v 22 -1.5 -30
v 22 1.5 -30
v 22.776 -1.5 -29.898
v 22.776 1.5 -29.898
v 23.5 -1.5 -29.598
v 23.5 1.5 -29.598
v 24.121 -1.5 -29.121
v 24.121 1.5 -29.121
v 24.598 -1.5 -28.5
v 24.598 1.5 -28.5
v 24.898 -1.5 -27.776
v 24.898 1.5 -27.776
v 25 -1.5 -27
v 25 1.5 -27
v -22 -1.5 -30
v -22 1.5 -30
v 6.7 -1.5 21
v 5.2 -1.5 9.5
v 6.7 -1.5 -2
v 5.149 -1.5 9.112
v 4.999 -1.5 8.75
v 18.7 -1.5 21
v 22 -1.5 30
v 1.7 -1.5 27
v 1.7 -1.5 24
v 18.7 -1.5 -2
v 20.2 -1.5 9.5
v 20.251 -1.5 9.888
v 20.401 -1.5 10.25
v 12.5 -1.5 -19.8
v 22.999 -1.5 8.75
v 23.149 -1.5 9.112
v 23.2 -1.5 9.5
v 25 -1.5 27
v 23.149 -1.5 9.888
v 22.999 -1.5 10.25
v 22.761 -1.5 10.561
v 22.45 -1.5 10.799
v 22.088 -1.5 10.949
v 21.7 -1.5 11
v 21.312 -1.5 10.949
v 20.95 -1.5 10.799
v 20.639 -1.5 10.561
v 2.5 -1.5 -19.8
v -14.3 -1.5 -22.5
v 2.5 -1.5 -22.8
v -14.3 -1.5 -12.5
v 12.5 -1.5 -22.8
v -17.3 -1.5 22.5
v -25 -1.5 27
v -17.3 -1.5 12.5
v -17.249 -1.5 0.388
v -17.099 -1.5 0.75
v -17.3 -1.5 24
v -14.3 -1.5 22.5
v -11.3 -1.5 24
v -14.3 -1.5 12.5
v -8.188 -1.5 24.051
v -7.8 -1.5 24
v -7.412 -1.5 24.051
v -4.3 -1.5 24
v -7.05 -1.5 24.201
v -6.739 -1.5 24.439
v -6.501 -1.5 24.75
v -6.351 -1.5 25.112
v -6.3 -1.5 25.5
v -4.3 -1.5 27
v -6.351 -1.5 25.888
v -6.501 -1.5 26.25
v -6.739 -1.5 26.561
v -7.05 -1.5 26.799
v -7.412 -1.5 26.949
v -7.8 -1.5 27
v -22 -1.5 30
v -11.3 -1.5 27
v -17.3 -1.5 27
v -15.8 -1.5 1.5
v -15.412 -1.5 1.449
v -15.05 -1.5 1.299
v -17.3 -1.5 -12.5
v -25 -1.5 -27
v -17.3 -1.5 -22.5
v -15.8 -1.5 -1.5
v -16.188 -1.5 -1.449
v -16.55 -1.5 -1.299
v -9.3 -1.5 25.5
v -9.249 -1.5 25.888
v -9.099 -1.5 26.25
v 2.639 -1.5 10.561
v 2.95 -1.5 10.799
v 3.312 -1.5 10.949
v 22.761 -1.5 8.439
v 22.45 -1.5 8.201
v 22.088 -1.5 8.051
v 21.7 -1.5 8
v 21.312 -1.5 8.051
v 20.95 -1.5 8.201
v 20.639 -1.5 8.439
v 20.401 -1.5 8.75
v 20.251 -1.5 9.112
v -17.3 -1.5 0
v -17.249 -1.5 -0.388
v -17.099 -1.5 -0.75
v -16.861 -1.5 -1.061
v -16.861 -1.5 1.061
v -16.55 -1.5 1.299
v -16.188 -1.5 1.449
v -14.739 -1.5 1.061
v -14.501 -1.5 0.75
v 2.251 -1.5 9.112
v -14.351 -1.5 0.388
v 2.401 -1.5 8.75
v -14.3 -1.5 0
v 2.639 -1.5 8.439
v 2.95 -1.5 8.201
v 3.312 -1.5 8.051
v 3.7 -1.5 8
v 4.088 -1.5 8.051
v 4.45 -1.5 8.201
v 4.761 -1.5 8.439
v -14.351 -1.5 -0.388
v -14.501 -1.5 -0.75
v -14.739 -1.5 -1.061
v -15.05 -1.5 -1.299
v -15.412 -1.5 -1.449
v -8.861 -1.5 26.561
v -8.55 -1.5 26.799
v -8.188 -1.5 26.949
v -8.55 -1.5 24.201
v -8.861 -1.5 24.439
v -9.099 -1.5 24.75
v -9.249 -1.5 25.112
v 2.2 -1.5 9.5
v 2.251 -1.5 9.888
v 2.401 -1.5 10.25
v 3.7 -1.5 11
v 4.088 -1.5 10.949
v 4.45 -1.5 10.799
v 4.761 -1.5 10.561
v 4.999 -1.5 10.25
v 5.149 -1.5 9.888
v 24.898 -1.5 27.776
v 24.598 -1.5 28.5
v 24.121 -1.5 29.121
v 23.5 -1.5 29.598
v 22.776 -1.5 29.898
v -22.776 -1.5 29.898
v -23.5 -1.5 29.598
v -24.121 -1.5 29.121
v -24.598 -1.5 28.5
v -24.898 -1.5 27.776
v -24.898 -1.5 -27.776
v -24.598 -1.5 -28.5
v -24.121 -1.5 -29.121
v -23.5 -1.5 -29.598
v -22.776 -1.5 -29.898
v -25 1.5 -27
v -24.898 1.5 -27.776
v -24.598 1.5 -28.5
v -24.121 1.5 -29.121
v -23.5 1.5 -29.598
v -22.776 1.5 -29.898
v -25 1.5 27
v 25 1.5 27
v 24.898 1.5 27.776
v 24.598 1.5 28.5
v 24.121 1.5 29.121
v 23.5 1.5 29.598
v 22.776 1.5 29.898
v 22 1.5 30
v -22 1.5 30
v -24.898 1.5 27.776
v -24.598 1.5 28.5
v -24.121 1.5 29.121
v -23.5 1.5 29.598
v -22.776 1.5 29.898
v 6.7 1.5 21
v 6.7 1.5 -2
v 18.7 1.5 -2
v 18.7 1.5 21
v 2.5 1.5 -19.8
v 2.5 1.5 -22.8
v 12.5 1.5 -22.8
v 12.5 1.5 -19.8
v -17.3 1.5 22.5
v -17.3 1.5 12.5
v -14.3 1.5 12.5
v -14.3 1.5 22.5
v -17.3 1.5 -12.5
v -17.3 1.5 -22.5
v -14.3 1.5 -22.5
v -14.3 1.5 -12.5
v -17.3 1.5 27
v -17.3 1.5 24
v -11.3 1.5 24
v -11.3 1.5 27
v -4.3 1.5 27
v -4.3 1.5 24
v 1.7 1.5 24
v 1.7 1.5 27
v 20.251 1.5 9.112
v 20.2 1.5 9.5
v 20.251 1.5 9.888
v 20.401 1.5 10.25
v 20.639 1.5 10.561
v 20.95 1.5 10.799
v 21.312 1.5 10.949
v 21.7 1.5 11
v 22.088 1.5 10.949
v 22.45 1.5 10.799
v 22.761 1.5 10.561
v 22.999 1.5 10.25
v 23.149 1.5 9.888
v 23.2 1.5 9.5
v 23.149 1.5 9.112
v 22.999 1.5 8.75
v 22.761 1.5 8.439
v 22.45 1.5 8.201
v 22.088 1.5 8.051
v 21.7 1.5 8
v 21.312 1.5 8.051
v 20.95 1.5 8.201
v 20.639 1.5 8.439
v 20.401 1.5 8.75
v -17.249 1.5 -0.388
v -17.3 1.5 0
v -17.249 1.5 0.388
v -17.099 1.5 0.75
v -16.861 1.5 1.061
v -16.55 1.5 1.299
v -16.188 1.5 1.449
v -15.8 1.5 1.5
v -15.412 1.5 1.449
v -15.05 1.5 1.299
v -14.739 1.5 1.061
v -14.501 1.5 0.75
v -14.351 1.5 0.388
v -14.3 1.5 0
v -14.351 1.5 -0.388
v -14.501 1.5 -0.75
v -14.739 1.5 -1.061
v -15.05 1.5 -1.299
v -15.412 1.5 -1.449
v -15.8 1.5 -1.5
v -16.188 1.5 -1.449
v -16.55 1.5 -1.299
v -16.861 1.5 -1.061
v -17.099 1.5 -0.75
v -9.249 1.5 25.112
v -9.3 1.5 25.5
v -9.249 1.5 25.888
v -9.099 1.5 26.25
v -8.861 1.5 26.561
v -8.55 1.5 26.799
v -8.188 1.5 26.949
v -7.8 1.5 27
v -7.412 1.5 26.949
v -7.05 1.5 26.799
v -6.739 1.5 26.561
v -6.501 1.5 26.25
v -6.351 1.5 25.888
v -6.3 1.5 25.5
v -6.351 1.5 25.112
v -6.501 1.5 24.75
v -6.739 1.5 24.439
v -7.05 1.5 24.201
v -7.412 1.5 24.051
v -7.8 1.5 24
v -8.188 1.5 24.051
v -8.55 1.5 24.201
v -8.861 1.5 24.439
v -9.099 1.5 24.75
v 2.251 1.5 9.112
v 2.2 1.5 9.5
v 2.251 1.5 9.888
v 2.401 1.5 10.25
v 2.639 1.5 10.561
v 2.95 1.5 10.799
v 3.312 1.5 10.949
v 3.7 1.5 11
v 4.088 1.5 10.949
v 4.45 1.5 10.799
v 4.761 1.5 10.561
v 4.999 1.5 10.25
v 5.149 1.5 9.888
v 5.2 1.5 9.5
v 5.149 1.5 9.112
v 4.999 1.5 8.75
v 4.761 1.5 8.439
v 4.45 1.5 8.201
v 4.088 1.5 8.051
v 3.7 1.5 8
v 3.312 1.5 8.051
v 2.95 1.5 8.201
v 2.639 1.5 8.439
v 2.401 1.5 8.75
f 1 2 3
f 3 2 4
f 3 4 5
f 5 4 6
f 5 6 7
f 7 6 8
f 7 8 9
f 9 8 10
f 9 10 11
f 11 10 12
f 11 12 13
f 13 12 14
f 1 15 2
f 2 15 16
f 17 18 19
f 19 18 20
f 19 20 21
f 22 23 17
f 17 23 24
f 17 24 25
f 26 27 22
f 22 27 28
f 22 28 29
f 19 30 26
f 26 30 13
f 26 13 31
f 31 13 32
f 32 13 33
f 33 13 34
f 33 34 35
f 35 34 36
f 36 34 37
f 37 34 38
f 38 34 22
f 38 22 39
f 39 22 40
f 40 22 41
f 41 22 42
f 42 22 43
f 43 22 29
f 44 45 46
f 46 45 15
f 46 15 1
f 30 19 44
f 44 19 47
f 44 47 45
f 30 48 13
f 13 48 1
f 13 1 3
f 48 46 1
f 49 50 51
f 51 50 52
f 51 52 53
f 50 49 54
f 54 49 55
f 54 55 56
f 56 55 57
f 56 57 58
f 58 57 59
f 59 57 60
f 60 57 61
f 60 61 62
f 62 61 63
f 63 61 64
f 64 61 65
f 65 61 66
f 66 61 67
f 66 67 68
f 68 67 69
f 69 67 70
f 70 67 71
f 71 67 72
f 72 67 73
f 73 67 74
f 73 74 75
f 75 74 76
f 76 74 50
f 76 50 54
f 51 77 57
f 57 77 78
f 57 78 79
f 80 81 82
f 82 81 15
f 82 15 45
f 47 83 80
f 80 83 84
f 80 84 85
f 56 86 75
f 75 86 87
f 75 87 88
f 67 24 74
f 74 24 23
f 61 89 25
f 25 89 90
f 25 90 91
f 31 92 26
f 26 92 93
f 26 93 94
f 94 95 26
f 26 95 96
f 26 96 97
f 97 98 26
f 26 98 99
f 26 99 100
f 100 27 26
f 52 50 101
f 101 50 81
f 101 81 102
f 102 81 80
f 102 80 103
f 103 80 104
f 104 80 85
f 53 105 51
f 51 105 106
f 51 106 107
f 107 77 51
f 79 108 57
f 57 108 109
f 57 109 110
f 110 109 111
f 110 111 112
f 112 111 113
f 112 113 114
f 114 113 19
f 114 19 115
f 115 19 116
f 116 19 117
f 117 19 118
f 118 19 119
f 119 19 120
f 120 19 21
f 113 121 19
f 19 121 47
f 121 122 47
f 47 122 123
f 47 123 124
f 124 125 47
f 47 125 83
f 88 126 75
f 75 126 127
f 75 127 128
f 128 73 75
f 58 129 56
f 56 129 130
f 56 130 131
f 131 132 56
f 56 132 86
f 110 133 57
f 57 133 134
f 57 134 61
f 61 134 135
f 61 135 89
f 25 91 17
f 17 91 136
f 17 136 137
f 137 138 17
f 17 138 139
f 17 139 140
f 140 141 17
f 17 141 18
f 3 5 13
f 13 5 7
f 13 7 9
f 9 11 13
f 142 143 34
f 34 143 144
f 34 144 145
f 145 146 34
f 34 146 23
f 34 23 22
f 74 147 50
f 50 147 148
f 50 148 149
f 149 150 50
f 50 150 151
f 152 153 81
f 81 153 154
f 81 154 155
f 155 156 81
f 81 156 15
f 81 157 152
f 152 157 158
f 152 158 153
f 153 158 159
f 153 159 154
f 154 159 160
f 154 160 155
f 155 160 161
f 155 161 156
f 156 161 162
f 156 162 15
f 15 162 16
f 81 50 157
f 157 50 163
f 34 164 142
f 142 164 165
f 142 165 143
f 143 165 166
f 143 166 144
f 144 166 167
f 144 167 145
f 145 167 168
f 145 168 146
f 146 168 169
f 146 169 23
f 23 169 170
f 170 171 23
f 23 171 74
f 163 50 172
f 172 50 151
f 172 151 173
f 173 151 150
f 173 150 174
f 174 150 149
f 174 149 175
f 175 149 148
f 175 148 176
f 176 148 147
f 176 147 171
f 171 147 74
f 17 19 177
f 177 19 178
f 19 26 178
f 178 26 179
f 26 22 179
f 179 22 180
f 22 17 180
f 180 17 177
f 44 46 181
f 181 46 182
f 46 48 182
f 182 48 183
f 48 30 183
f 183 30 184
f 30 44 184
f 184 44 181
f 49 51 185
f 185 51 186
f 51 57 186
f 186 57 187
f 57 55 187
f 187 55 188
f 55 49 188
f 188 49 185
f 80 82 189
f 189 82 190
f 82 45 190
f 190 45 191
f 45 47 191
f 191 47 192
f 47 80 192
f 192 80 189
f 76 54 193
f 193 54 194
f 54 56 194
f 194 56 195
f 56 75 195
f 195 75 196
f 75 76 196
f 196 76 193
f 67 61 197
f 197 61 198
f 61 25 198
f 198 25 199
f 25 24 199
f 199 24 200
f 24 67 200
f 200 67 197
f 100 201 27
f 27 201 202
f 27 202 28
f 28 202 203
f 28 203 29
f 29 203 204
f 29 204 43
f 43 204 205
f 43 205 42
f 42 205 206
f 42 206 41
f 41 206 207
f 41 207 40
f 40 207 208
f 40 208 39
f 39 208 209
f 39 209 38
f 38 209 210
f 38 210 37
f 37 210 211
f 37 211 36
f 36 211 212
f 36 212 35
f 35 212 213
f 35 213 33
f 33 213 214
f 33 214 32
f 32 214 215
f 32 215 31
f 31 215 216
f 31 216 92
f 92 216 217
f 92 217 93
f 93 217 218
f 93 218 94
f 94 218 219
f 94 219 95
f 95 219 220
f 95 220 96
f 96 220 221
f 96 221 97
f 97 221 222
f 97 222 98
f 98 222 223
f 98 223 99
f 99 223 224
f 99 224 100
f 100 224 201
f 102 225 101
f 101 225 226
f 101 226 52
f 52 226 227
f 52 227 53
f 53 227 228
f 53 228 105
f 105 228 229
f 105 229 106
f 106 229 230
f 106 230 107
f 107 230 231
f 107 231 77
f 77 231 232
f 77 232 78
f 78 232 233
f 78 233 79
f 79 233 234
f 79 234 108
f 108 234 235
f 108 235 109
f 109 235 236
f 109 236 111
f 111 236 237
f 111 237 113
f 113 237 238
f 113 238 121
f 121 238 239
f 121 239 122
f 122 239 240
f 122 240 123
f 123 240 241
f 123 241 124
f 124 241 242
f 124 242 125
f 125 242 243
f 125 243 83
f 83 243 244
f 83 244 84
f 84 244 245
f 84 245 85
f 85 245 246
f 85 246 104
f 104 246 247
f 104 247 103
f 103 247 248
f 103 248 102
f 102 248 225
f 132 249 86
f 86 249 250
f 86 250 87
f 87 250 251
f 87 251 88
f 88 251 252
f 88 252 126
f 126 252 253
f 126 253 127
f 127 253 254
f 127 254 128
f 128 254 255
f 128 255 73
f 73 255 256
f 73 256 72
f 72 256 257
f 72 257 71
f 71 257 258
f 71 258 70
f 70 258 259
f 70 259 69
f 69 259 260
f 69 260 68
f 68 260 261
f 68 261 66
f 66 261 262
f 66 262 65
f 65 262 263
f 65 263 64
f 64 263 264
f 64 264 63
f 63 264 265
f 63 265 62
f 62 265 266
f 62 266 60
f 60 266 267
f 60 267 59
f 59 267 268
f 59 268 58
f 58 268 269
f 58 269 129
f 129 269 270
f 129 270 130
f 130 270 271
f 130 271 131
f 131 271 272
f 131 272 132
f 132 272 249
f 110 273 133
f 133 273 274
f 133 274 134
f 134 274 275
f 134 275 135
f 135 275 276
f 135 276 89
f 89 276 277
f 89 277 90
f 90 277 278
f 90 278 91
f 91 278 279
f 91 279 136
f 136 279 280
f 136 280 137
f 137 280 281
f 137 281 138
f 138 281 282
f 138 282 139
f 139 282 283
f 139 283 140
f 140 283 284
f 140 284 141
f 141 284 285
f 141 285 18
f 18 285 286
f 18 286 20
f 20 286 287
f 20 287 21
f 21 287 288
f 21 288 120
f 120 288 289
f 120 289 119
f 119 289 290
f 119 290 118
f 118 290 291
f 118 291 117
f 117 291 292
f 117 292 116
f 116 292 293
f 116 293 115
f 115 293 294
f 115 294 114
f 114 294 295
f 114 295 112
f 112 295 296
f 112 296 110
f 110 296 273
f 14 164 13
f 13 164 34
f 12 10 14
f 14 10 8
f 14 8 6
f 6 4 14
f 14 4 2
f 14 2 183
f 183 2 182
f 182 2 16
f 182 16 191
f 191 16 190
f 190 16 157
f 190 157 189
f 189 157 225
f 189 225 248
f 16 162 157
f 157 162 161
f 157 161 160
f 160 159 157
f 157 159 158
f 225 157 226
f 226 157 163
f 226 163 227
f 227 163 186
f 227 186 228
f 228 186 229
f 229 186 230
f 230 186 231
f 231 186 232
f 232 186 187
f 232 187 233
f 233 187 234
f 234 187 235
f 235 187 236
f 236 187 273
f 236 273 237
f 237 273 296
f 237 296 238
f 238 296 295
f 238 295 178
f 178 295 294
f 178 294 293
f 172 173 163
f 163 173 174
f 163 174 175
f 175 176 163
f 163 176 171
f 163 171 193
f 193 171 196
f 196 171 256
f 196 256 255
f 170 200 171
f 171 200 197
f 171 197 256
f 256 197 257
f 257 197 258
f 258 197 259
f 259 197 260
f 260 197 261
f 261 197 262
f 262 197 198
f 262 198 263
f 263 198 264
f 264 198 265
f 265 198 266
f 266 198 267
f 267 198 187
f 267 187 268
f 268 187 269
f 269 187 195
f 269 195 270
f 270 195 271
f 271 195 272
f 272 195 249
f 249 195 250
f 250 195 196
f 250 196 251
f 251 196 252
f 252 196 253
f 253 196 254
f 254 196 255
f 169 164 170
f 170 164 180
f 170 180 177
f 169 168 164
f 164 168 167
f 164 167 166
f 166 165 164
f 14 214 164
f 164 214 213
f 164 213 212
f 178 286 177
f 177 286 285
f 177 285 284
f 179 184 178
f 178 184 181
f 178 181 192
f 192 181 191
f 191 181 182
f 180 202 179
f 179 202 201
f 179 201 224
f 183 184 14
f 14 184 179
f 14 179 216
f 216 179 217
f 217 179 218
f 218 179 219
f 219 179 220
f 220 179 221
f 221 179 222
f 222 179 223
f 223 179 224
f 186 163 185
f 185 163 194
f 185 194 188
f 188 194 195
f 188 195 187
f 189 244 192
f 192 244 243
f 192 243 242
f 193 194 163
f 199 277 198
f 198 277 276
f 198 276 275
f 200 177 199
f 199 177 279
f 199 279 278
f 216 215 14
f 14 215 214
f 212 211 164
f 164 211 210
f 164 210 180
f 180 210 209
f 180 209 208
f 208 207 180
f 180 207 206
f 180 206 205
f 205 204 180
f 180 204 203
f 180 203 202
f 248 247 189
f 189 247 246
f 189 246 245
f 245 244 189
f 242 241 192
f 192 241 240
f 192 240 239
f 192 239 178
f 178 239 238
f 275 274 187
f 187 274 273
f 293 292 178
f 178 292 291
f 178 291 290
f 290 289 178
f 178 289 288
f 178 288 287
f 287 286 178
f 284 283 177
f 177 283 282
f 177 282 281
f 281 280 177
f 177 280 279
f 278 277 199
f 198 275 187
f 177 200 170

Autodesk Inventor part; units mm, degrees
ref_plane "YZ Plane" through (0, 0, 0) normal (1, 0, 0) x (0, 1, 0)
ref_plane "XZ Plane" through (0, 0, 0) normal (0, 1, 0) x (-1, 0, 0)
ref_plane "XY Plane" through (0, 0, 0) normal (0, 0, 1) x (1, 0, 0)
sketch "草圖1" plane through (0, 0, 0) normal (0, 1, 0) x (-1, 0, 0)
  line L0 (-25, 27) -> (-25, -27)
  line L1 (-25, -30) -> (24.1827, -30)
  line L2 (17.3, 27) -> (11.3, 27)
  line L3 (11.3, 27) -> (11.3, 24)
  line L4 (11.3, 24) -> (17.3, 24)
  line L5 (17.3, 24) -> (17.3, 27)
  line L6 (17.3, 22.5) -> (14.3, 22.5)
  line L7 (14.3, 22.5) -> (14.3, 12.5)
  line L8 (14.3, 12.5) -> (17.3, 12.5)
  line L9 (17.3, 12.5) -> (17.3, 22.5)
  line L10 (14.3, 12.5) -> (15.8, 12.5)
  circle A0 centre (15.8, 0) radius 1.5
  line L11 (14.3, -22.5) -> (17.3, -22.5)
  line L12 (17.3, -22.5) -> (17.3, -12.5)
  line L13 (17.3, -12.5) -> (14.3, -12.5)
  line L14 (14.3, -12.5) -> (14.3, -22.5)
  circle A1 centre (7.8, 25.5) radius 1.5
  line L15 (-1.7, 24) -> (4.3, 24)
  line L16 (4.3, 24) -> (4.3, 27)
  line L17 (4.3, 27) -> (-1.7, 27)
  line L18 (-1.7, 27) -> (-1.7, 24)
  line L19 (-6.7, 21) -> (-18.7, 21)
  line L20 (-18.7, 21) -> (-18.7, -2)
  line L21 (-18.7, -2) -> (-6.7, -2)
  line L22 (-6.7, -2) -> (-6.7, 21)
  line L23 (-6.7, 21) -> (-6.7, 9.5)
  circle A2 centre (-3.7, 9.5) radius 1.5
  circle A3 centre (-21.7, 9.5) radius 1.5
  line L24 (-2.5, -19.8) -> (-12.5, -19.8)
  line L25 (-12.5, -19.8) -> (-12.5, -22.8)
  line L26 (-12.5, -22.8) -> (-2.5, -22.8)
  line L27 (-2.5, -22.8) -> (-2.5, -19.8)
  line L28 (-25, -30) -> (-25, -27)
  line L29 (-12.5, -22.8) -> (-12.5, -21.3)
  line L30 (25, 30) -> (25, -30)
  line L31 (25, -30) -> (24.1827, -30)
  line L32 (25, 30) -> (25, 27)
  line L33 (-25, 30) -> (-25, 27)
  line L34 (0, -42) -> (0, 42) projected
  line L35 (35, 0) -> (-35, 0) projected
  line L36 (25, 30) -> (25, 27)
  line L37 (25, 30) -> (-25, 30)
  point P0 (25, -30)
  dimension "d1" = 50
  dimension "d46" = 3
  dimension "d47" = 1.5
  dimension "d48" = 3
  dimension "d49" = 10
  dimension "d50" = 3
  dimension "d51" = 1.5
  dimension "d53" = 3
  dimension "d54" = 3
  dimension "d55" = 10
  dimension "d56" = 3
  dimension "d61" = 3
  dimension "d62" = 6
  dimension "d63" = 3
  dimension "d67" = 12
  dimension "d68" = 23
  dimension "d69" = 11.5
  dimension "d72" = 3
  dimension "d73" = 3
  dimension "d74" = 10
  dimension "d75" = 3
  dimension "d88" = 60
  dimension "d91" = 25
  dimension "d92" = 30
extrude "擠出2" add sketch "草圖1" along normal mid plane 3 contours L33 L37 L34 L17 L18 L15 L35 L22 L19 L20 L0 | L35 L20 L21 L22 L34 L1 L28 L0 | L37 L30 L35 A0 L34 L15 L16 L17 | L34 L35 A0 L30 L31 L1
fillet "圓角1" radius 3 4 edges at (-25, 0, 30) (25, 0, 30) (-25, 0, -30) (25, 0, -30)
properties part number "板子1"
